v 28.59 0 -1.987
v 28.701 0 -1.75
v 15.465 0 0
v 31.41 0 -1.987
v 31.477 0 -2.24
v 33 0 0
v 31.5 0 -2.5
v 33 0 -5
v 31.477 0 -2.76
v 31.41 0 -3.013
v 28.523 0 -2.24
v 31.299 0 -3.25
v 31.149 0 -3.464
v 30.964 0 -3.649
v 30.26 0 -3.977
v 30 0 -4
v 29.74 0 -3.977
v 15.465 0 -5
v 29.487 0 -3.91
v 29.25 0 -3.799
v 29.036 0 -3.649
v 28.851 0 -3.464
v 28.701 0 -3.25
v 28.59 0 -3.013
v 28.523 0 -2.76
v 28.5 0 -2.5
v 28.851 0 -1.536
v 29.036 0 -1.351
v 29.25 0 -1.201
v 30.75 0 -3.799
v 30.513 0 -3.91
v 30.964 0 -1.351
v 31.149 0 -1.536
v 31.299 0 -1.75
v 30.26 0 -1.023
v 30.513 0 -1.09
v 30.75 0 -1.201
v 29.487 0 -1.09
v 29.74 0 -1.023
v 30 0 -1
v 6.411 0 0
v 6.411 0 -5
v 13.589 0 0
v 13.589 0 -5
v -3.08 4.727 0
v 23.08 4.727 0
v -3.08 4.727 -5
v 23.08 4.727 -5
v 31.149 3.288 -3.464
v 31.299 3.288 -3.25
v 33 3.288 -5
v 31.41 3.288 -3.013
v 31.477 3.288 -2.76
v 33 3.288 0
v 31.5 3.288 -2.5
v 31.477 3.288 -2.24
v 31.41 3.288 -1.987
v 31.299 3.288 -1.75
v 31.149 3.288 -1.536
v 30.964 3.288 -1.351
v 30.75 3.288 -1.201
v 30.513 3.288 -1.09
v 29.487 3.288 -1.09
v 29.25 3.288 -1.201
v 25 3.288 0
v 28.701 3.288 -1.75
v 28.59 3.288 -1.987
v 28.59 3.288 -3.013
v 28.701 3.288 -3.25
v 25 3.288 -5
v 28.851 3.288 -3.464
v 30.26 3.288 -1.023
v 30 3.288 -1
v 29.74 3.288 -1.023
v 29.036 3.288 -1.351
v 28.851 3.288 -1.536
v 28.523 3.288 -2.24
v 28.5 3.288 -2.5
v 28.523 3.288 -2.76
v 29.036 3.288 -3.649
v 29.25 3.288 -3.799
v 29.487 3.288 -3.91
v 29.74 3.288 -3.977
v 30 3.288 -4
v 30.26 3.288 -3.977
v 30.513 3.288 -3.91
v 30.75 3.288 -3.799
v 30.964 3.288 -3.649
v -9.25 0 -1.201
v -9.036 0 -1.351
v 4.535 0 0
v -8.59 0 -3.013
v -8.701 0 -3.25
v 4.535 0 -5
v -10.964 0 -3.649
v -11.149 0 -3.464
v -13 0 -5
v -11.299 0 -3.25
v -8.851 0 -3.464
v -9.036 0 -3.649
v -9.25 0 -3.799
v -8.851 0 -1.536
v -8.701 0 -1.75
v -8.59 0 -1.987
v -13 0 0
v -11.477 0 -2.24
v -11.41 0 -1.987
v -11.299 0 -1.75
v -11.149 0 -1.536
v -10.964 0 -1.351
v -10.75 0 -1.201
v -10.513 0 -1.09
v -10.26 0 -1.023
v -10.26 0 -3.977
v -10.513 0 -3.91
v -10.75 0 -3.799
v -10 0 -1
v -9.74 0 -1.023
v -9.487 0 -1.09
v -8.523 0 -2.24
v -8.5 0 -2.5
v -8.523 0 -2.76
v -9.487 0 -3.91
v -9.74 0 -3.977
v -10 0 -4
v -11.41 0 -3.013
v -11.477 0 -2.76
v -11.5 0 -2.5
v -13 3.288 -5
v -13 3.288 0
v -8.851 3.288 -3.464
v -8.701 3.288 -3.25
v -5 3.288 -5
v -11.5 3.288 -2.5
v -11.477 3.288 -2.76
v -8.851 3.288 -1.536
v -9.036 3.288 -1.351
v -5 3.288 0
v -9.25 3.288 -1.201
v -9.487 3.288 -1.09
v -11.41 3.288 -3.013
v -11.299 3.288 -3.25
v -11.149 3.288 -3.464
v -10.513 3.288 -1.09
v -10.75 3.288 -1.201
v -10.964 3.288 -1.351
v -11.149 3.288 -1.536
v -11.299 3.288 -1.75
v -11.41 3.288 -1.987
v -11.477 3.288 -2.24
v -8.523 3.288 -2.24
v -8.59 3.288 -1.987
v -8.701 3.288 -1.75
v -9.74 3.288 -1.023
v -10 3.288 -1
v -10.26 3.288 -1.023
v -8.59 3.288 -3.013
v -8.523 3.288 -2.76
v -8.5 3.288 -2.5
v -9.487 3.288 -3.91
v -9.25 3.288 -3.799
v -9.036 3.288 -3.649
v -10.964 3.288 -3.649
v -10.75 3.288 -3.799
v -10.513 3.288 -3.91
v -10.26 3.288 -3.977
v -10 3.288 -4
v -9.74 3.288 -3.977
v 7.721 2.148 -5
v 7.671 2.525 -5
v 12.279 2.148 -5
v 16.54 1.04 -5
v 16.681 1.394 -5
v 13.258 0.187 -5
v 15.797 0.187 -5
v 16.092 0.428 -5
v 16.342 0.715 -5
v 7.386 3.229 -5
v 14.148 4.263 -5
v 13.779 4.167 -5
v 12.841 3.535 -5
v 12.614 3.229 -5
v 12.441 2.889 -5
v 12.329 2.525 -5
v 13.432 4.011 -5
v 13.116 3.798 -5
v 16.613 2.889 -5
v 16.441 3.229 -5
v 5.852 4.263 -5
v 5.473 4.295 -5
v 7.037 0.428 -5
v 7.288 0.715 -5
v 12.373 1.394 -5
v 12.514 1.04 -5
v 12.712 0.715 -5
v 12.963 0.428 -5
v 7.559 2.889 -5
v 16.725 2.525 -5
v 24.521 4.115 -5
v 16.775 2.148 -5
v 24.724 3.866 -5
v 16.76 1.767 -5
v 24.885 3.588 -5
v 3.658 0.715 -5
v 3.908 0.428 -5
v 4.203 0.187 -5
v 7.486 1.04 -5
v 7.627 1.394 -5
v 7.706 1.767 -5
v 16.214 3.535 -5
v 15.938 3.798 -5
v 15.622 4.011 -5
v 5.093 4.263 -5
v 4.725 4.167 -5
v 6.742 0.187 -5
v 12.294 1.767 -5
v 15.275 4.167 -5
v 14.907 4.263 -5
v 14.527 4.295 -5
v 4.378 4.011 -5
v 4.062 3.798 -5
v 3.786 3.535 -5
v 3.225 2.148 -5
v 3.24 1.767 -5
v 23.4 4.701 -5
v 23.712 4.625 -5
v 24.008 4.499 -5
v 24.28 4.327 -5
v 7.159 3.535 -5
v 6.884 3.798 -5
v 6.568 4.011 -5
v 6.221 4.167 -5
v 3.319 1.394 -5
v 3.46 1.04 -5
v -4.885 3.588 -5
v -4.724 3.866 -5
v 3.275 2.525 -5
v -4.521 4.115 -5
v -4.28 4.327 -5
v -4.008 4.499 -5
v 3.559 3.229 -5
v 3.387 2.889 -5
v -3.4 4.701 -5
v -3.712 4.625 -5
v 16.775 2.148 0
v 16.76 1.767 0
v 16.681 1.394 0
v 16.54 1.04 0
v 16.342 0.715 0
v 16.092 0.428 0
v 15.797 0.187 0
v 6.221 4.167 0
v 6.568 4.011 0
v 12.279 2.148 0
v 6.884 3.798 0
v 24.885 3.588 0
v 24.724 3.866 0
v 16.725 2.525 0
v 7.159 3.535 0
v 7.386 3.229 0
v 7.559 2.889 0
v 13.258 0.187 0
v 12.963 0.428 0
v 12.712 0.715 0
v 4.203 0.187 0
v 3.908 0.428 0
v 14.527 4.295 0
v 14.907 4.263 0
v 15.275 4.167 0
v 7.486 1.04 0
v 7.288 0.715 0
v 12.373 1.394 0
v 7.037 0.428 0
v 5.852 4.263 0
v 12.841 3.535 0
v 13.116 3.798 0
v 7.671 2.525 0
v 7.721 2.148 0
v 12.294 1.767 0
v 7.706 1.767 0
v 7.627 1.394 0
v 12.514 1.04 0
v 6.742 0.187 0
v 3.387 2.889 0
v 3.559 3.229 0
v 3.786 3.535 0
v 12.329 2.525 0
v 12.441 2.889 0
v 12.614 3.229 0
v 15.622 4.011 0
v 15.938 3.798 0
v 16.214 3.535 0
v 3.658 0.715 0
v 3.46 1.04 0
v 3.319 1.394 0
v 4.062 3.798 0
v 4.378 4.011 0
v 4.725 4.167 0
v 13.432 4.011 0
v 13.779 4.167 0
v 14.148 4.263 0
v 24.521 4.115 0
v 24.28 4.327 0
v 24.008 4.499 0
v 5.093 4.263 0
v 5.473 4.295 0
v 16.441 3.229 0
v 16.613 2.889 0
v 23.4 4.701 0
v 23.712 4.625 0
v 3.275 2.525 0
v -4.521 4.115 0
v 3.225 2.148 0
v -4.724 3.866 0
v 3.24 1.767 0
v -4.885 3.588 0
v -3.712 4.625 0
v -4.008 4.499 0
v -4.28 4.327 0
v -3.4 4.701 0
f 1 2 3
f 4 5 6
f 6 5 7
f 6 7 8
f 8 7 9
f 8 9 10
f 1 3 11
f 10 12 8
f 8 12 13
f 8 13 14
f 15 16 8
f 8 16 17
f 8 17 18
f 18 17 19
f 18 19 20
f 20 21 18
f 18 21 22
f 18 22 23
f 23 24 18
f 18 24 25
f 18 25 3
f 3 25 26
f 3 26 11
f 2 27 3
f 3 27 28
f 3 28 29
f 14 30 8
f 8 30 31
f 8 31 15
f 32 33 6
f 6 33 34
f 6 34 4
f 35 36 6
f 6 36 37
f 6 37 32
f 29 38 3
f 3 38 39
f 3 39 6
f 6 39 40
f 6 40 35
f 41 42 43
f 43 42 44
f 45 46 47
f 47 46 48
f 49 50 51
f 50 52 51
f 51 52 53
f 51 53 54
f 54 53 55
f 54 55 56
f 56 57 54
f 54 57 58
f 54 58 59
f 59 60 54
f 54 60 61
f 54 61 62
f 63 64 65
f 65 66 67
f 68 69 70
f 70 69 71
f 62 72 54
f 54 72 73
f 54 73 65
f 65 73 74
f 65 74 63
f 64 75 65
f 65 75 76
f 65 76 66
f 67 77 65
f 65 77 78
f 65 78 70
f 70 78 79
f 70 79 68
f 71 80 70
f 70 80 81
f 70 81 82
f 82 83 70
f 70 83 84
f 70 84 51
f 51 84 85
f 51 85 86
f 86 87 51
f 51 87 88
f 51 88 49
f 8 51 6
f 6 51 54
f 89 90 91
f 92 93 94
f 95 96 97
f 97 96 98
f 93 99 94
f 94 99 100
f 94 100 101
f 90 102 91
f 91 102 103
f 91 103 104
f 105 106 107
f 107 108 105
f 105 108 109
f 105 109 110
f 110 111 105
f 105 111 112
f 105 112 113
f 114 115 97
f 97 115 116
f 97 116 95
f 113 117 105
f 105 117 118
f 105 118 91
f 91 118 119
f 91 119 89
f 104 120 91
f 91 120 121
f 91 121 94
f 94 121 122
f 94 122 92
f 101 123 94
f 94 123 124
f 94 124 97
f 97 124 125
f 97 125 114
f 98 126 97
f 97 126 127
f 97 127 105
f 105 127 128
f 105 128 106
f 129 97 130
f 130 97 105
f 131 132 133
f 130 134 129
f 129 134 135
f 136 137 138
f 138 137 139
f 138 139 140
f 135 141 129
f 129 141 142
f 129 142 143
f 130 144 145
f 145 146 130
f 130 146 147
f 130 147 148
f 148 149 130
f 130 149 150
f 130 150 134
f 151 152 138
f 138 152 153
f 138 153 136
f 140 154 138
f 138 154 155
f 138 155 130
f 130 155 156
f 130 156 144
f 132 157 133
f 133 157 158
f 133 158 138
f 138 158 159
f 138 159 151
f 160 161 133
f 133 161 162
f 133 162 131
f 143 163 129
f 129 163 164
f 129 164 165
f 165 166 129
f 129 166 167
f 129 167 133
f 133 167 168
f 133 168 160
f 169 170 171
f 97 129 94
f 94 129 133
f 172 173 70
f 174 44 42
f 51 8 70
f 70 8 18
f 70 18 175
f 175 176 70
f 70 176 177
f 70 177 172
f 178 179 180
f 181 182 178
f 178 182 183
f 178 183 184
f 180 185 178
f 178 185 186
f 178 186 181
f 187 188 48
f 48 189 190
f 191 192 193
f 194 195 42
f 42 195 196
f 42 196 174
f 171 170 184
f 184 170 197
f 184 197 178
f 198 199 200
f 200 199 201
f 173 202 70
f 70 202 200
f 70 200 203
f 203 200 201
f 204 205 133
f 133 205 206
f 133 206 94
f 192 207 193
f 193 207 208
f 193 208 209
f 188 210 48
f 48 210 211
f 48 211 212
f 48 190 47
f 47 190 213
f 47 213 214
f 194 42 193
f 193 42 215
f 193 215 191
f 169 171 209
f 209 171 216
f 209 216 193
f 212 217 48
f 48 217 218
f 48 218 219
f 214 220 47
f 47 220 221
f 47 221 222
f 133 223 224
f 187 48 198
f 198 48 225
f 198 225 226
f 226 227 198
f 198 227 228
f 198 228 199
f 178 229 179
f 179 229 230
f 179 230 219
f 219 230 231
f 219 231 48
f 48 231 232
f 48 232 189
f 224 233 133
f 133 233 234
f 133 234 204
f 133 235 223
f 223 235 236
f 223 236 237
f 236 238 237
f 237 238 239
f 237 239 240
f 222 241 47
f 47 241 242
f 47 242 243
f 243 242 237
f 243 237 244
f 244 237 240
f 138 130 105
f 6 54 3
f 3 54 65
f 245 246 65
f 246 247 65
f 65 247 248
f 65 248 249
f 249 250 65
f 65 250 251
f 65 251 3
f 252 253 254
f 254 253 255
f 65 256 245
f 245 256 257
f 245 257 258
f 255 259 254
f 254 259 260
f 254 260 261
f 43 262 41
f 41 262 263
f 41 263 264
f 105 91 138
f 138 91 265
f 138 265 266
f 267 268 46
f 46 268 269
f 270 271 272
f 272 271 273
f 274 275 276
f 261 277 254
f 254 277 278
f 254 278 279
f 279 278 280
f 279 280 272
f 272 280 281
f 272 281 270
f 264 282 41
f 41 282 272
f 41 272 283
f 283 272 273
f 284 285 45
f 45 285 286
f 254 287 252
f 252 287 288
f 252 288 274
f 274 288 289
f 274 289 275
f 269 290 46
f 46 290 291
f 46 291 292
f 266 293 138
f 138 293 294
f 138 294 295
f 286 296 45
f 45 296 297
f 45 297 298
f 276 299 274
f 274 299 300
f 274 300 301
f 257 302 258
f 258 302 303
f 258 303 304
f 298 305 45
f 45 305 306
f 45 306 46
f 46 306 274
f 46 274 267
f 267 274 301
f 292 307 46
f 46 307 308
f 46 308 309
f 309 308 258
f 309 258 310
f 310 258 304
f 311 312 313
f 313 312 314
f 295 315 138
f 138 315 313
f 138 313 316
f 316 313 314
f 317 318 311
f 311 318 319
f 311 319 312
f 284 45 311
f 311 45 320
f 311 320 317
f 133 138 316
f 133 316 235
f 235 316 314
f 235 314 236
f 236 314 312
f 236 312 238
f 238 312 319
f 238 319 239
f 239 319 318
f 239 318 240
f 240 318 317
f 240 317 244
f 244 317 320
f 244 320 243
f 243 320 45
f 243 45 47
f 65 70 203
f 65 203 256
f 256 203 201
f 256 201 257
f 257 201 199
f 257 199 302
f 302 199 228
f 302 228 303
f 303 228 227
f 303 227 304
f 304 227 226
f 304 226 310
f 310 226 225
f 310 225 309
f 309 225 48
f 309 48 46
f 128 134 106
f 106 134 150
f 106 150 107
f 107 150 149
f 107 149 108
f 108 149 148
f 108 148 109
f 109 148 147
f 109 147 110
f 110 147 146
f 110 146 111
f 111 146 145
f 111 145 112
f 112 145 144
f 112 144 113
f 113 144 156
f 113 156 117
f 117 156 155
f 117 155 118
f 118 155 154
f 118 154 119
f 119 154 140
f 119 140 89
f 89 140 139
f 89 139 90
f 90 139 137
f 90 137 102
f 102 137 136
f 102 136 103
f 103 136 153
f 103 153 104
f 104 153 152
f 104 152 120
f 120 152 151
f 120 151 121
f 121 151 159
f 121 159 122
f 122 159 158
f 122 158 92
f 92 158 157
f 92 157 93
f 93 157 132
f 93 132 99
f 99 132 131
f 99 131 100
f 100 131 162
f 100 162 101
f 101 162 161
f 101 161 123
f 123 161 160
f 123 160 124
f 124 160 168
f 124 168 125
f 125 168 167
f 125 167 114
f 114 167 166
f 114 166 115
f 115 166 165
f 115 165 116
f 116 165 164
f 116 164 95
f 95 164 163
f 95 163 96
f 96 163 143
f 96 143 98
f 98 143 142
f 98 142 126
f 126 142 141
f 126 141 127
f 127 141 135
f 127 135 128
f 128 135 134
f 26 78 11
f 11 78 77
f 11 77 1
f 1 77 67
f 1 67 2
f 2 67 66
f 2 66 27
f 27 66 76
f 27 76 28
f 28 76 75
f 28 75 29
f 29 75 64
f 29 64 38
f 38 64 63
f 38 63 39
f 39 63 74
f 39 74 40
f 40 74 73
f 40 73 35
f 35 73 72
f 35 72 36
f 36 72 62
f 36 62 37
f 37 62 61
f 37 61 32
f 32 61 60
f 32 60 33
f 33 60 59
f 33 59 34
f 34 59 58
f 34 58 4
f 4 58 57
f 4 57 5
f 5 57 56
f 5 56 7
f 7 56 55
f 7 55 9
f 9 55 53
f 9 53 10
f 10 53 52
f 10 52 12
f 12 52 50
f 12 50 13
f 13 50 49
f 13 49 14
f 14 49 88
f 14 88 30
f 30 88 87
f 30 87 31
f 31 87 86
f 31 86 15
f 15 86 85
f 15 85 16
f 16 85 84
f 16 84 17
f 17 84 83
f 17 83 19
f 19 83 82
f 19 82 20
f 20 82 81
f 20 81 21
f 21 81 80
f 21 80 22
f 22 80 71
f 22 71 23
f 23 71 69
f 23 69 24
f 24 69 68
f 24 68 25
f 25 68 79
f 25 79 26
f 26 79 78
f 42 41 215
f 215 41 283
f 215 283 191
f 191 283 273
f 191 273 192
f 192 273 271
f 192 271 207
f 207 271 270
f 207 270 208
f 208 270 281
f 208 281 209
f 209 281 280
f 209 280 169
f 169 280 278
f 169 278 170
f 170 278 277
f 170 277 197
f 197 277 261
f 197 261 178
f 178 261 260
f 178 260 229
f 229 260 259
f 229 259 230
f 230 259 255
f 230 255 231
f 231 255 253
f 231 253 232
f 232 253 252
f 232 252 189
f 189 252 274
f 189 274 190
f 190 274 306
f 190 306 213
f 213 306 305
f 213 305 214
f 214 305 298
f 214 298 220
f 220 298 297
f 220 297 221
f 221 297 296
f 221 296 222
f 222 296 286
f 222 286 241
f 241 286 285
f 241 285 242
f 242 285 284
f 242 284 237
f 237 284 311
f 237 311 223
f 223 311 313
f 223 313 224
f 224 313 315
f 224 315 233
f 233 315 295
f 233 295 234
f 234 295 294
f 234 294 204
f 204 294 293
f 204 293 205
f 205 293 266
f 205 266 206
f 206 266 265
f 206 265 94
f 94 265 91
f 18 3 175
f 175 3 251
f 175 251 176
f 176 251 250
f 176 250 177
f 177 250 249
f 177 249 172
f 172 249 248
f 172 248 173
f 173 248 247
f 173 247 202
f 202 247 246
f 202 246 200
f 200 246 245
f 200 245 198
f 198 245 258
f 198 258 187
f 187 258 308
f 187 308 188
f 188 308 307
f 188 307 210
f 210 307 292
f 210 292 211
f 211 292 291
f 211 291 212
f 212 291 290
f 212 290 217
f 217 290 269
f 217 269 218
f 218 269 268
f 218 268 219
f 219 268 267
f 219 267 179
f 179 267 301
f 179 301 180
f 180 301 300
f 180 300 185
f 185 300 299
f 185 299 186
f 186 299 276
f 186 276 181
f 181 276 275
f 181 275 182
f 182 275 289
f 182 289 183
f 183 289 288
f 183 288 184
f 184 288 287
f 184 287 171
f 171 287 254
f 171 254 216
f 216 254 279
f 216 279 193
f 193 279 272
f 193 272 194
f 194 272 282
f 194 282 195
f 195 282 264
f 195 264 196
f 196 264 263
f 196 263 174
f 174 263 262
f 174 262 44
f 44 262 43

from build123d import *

# Parameters (mm, degrees)
BOSS_EXTRUDE1_DEPTH     = 5
FILLET1_R               = 2
CUT_EXTRUDE1_DEPTH      = 34.538204198
CUT_EXTRUDE1_DEPTH_BACK = 34.538204198
SKETCH2_R               = 1.5
CUT_EXTRUDE2_DEPTH      = 34.709745494
CUT_EXTRUDE2_DEPTH_BACK = 34.709745494
SKETCH3_R               = 2.25


with BuildPart() as part:
    # Sketch1 → Boss-Extrude1 (new body)
    with BuildSketch(Plane.XY):
        Polygon((-5, 4.727255151), (-5, 3.288029927), (-13, 3.288029927), (-13, 0), (33, 0), (33, 3.288029927), (25, 3.288029927), (25, 4.727255151), align=None)
    extrude(amount=-BOSS_EXTRUDE1_DEPTH)

    # Fillet1
    # the kernel refuses this fillet: 2 mm, written as the material it takes off along each edge
    with BuildSketch(Plane(origin=(-5, 4.727255151, 4.799434635), x_dir=(0, -1, 0), z_dir=(0, 0, -1))) as fillet1_piece_1:
        with BuildLine():
            CenterArc((2, -1.919773854), FILLET1_R, 106.283326604, 73.716673396)
            Line((0, -1.919773854), (-0.04, -1.919773854))
            Line((-0.04, -1.919773854), (-0.04, 0))
            Line((-0.04, 0), (0, 0.04))
            ThreePointArc((0, 0.04), (0.719612612, 0.04), (1.428009728, 0.038395477))
            Line((1.428009728, 0.038395477), (1.439225223, 0))
        make_face()
    extrude(amount=14.598869269, mode=Mode.SUBTRACT)
    with BuildSketch(Plane(origin=(25, 4.727255151, 4.799434635), x_dir=(0, -1, 0), z_dir=(0, 0, -1))) as fillet1_piece_2:
        with BuildLine():
            CenterArc((2, 1.919773854), FILLET1_R, 180, 73.716673396)
            Line((0, 1.919773854), (-0.04, 1.919773854))
            Line((-0.04, 1.919773854), (-0.04, 0))
            Line((-0.04, 0), (0, -0.04))
            ThreePointArc((0, -0.04), (0.719612612, -0.04), (1.428009728, -0.038395477))
            Line((1.428009728, -0.038395477), (1.439225223, 0))
        make_face()
    extrude(amount=14.598869269, mode=Mode.SUBTRACT)

    # Sketch2 → Cut-Extrude1 (cut, two sides: drawn at the far end of the back side and taken through both)
    with BuildSketch(Plane(origin=(0, 3.288029927, 0), x_dir=(1, 0, 0), z_dir=(0, 1, 0)).offset(-CUT_EXTRUDE1_DEPTH_BACK)):
        with Locations(Location((-10, 2.5, 0), (0, 0, 180))):
            Circle(SKETCH2_R)
        with Locations(Location((30, 2.5, 0), (0, 0, 180))):
            Circle(SKETCH2_R)
    extrude(amount=CUT_EXTRUDE1_DEPTH + CUT_EXTRUDE1_DEPTH_BACK, mode=Mode.SUBTRACT)

    # Sketch3 → Cut-Extrude2 (cut, two sides: drawn at the far end of the back side and taken through both)
    with BuildSketch(Plane.XY.offset(-CUT_EXTRUDE2_DEPTH_BACK)):
        with Locations((14.527125966, 2.045207178)):
            Circle(SKETCH3_R)
        with Locations((5.472874034, 2.045207178)):
            Circle(SKETCH3_R)
    extrude(amount=CUT_EXTRUDE2_DEPTH + CUT_EXTRUDE2_DEPTH_BACK, mode=Mode.SUBTRACT)


solid = part.part
